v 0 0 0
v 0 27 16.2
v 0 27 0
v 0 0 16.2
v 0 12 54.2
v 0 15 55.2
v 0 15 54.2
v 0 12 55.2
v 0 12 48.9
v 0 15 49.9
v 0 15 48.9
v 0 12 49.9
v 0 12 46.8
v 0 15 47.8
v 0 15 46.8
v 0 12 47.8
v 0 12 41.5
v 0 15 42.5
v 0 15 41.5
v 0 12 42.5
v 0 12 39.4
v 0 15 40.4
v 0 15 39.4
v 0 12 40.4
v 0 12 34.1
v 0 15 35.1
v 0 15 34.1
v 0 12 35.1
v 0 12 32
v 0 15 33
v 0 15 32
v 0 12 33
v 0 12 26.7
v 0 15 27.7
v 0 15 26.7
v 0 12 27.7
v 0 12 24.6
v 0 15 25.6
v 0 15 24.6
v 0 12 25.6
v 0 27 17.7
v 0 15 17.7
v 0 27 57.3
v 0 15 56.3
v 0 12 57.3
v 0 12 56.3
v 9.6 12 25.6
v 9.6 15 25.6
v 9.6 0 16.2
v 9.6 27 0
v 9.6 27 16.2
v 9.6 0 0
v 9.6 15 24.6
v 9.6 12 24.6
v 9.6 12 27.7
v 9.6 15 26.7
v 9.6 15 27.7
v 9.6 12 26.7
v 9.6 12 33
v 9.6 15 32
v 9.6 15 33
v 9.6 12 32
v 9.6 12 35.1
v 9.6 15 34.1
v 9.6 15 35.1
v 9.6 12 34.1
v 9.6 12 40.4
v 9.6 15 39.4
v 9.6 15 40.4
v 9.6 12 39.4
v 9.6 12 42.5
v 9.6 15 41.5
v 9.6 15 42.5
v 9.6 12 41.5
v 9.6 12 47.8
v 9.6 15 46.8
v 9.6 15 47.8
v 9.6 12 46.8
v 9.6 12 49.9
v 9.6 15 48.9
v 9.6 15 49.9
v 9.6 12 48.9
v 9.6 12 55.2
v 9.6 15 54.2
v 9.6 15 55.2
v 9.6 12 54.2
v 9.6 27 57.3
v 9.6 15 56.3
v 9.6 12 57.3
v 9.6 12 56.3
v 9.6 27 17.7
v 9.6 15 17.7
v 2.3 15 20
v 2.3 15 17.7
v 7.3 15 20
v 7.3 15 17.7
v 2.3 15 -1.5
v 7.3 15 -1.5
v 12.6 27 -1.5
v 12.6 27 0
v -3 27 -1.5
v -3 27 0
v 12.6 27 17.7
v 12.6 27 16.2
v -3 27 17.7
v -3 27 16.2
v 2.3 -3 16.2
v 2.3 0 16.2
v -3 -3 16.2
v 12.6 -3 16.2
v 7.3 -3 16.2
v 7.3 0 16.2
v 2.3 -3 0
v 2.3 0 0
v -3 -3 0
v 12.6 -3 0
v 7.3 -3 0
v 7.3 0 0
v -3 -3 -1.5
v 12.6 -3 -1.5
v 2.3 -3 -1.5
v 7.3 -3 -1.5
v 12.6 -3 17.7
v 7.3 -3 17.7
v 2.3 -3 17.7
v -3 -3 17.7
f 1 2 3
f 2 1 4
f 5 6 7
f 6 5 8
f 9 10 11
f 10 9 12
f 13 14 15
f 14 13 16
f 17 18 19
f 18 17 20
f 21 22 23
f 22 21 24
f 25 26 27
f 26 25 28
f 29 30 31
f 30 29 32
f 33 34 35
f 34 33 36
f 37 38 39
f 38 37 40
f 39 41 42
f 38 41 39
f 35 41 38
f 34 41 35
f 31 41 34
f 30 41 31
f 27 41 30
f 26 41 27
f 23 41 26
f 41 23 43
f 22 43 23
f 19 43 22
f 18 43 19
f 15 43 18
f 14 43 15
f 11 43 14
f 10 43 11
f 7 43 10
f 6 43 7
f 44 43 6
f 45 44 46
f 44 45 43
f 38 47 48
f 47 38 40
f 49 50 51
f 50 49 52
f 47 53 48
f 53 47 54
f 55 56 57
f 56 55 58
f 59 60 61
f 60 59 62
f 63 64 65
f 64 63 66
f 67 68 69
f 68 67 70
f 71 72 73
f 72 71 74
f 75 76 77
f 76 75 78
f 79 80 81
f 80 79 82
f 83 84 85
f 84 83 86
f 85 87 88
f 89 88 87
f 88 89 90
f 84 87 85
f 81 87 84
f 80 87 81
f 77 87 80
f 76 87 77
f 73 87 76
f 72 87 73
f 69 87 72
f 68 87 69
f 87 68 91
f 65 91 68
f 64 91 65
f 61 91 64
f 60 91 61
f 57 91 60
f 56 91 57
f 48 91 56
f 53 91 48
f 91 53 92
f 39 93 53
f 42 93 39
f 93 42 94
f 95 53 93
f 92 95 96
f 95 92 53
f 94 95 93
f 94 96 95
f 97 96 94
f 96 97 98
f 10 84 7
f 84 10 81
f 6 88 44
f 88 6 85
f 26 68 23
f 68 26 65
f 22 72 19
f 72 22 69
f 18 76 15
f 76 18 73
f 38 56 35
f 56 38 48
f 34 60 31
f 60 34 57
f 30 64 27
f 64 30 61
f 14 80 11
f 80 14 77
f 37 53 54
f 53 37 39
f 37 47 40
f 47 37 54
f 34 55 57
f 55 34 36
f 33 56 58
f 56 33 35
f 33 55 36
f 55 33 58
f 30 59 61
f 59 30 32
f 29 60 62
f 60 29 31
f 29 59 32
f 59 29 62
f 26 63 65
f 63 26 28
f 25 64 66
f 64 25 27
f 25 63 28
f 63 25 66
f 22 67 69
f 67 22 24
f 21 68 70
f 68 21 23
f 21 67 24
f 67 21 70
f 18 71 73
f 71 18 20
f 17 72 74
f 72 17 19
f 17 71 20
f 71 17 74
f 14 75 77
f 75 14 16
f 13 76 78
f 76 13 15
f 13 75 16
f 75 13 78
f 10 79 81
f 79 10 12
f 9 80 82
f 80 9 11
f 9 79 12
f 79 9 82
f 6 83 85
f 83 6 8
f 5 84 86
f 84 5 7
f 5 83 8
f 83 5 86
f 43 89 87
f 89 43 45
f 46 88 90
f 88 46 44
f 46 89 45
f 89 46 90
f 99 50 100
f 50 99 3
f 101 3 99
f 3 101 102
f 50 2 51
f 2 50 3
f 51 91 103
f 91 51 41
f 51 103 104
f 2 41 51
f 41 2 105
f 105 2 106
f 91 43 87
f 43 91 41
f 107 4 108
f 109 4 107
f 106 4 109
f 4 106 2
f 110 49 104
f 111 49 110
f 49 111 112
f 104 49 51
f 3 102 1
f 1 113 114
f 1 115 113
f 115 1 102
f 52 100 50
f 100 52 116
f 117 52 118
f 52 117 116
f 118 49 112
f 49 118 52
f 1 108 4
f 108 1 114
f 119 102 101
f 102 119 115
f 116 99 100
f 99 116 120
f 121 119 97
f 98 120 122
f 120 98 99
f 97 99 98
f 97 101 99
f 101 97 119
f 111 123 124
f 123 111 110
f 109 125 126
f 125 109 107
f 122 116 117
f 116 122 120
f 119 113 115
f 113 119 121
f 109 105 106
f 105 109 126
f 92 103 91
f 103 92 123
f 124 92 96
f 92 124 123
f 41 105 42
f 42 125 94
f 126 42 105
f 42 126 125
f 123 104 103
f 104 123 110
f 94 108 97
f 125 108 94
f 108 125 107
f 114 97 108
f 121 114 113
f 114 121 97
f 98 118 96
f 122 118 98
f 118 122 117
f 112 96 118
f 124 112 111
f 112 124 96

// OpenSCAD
// file: line.scad
//cube([100,100,15.8]);

servoW=12.6+0.4;
servoH=23.0+0.4;
    waku=4;

module servo(){
    cube([12.6+0.4,23.0+0.4,26.7]);
    translate([0,(23.0-32.4)/2,15.8])
    cube([12.6+0.4,32.4,2.4]);
    translate([(13-4.2)/2,23,-100])
    cube([4.2,5,18+100]);
}

module servos(num){
translate([servoW*4,0,0])
scale([-1,1,1])
    for(i = [0:num-1]){
        translate([i*13,0,(2.4+5)*i]){
            servo();
        }
    }
}

/**
* @deprecated
*/
module servo4_0(){
    servos(4);
}


module servoHolder(num){
translate([servoW*4,0,0])
scale([-1,1,1])
difference(){
union(){
    translate([-waku,-waku,0])
    cube([waku,waku*2+servoH,15.8]);
    translate([0,-waku,0]){
    for(i = [0:num-1]){
        translate([i*13,0,0]){
            cube([waku+servoW,waku*2+servoH,15.8+(2.4+5)*i]);
        }
    }
    }
}


union(){
    for(i = [0:num-1]){
        translate([i*13,0,(2.4+5)*i]){
            servo();
        }
    }
    
}
}
}

/**
*@deprecated
*/
module servo4(){
    servoHolder(4);
}

module servoRect(num, l=0){
    translate([-waku,-waku,0])
    cube([l==0?servoW*num+waku*2:l,servoH+waku+2,15.8]);
}

/**
* @deprecated
*/
module servo4_rect(l){
    servoRect(4, l);
}

module hikkake(l=servoW*4,d=10,fixPos=true,haba=1,thin=2,num=4){
    x=0;
    if(fixPos){
        x=-waku;
    }
    for(i=[1:1+num]){
        translate([0,-d,(2.4+5)*i+15.8+2.4-thin])
            cube([l,d,thin]);  
        translate([0,-d,(2.4+5)*i+15.8+2.4+haba])
            cube([l,d,thin]);  
    }

}

//servo4_0();
//servo();
//hikkake();
//

//for(i=[0:4]){
//translate([-waku,waku+servoH,(2.4+5)*i+15.8+2.4])
//cube([servoW*4,10,2]);
//}
//translate([-waku,waku+servoH,(2.4+5)+15.8+2.4])
//cube([servoW*2+waku,10,2]);
//translate([-waku,waku+servoH,(2.4+5)*2+15.8+2.4])
//cube([servoW+waku,10,2]);
//
//translate([100,0,0])
//servo4_rect();
//
//translate([0,50,0])
//servo4_rect();
// main file
include<line.scad>
//echo(servo*4+waku*2-0.4);
//translate([-10,0,0])
//cube([10-0.4,servoH+waku-0.4,(2.4+5)*4+15.8+2.4]);
//hikkake(l=10-0.4,d=2,thin=1,fixPos=false);
//servo();


waku1=3;

difference(){
    union(){
        cube([10-0.4,servoH+waku-0.4,15.8+0.4]);
        translate([0,15,0])
        {
            cube([10-0.4,servoH+waku-0.4-15,(2.4+5)*5+15.8+2.4+1+1.1]);
            hikkake(l=10-0.4,d=3,thin=1,fixPos=false, haba=1.1);
        }
        translate([-waku1,-waku1,-1.5])
            cube([10-0.4+waku1*2,servoH+waku-0.4+waku1,1.5]);
        translate([-waku1,-waku1,15.8+0.4])
            cube([10-0.4+waku1*2,servoH+waku-0.4+waku1,1.5]);
        //servo4_0();
    }
    translate([(10-0.4-5)/2,-waku1,-50])
    cube([5,15+waku1,70]);
}
